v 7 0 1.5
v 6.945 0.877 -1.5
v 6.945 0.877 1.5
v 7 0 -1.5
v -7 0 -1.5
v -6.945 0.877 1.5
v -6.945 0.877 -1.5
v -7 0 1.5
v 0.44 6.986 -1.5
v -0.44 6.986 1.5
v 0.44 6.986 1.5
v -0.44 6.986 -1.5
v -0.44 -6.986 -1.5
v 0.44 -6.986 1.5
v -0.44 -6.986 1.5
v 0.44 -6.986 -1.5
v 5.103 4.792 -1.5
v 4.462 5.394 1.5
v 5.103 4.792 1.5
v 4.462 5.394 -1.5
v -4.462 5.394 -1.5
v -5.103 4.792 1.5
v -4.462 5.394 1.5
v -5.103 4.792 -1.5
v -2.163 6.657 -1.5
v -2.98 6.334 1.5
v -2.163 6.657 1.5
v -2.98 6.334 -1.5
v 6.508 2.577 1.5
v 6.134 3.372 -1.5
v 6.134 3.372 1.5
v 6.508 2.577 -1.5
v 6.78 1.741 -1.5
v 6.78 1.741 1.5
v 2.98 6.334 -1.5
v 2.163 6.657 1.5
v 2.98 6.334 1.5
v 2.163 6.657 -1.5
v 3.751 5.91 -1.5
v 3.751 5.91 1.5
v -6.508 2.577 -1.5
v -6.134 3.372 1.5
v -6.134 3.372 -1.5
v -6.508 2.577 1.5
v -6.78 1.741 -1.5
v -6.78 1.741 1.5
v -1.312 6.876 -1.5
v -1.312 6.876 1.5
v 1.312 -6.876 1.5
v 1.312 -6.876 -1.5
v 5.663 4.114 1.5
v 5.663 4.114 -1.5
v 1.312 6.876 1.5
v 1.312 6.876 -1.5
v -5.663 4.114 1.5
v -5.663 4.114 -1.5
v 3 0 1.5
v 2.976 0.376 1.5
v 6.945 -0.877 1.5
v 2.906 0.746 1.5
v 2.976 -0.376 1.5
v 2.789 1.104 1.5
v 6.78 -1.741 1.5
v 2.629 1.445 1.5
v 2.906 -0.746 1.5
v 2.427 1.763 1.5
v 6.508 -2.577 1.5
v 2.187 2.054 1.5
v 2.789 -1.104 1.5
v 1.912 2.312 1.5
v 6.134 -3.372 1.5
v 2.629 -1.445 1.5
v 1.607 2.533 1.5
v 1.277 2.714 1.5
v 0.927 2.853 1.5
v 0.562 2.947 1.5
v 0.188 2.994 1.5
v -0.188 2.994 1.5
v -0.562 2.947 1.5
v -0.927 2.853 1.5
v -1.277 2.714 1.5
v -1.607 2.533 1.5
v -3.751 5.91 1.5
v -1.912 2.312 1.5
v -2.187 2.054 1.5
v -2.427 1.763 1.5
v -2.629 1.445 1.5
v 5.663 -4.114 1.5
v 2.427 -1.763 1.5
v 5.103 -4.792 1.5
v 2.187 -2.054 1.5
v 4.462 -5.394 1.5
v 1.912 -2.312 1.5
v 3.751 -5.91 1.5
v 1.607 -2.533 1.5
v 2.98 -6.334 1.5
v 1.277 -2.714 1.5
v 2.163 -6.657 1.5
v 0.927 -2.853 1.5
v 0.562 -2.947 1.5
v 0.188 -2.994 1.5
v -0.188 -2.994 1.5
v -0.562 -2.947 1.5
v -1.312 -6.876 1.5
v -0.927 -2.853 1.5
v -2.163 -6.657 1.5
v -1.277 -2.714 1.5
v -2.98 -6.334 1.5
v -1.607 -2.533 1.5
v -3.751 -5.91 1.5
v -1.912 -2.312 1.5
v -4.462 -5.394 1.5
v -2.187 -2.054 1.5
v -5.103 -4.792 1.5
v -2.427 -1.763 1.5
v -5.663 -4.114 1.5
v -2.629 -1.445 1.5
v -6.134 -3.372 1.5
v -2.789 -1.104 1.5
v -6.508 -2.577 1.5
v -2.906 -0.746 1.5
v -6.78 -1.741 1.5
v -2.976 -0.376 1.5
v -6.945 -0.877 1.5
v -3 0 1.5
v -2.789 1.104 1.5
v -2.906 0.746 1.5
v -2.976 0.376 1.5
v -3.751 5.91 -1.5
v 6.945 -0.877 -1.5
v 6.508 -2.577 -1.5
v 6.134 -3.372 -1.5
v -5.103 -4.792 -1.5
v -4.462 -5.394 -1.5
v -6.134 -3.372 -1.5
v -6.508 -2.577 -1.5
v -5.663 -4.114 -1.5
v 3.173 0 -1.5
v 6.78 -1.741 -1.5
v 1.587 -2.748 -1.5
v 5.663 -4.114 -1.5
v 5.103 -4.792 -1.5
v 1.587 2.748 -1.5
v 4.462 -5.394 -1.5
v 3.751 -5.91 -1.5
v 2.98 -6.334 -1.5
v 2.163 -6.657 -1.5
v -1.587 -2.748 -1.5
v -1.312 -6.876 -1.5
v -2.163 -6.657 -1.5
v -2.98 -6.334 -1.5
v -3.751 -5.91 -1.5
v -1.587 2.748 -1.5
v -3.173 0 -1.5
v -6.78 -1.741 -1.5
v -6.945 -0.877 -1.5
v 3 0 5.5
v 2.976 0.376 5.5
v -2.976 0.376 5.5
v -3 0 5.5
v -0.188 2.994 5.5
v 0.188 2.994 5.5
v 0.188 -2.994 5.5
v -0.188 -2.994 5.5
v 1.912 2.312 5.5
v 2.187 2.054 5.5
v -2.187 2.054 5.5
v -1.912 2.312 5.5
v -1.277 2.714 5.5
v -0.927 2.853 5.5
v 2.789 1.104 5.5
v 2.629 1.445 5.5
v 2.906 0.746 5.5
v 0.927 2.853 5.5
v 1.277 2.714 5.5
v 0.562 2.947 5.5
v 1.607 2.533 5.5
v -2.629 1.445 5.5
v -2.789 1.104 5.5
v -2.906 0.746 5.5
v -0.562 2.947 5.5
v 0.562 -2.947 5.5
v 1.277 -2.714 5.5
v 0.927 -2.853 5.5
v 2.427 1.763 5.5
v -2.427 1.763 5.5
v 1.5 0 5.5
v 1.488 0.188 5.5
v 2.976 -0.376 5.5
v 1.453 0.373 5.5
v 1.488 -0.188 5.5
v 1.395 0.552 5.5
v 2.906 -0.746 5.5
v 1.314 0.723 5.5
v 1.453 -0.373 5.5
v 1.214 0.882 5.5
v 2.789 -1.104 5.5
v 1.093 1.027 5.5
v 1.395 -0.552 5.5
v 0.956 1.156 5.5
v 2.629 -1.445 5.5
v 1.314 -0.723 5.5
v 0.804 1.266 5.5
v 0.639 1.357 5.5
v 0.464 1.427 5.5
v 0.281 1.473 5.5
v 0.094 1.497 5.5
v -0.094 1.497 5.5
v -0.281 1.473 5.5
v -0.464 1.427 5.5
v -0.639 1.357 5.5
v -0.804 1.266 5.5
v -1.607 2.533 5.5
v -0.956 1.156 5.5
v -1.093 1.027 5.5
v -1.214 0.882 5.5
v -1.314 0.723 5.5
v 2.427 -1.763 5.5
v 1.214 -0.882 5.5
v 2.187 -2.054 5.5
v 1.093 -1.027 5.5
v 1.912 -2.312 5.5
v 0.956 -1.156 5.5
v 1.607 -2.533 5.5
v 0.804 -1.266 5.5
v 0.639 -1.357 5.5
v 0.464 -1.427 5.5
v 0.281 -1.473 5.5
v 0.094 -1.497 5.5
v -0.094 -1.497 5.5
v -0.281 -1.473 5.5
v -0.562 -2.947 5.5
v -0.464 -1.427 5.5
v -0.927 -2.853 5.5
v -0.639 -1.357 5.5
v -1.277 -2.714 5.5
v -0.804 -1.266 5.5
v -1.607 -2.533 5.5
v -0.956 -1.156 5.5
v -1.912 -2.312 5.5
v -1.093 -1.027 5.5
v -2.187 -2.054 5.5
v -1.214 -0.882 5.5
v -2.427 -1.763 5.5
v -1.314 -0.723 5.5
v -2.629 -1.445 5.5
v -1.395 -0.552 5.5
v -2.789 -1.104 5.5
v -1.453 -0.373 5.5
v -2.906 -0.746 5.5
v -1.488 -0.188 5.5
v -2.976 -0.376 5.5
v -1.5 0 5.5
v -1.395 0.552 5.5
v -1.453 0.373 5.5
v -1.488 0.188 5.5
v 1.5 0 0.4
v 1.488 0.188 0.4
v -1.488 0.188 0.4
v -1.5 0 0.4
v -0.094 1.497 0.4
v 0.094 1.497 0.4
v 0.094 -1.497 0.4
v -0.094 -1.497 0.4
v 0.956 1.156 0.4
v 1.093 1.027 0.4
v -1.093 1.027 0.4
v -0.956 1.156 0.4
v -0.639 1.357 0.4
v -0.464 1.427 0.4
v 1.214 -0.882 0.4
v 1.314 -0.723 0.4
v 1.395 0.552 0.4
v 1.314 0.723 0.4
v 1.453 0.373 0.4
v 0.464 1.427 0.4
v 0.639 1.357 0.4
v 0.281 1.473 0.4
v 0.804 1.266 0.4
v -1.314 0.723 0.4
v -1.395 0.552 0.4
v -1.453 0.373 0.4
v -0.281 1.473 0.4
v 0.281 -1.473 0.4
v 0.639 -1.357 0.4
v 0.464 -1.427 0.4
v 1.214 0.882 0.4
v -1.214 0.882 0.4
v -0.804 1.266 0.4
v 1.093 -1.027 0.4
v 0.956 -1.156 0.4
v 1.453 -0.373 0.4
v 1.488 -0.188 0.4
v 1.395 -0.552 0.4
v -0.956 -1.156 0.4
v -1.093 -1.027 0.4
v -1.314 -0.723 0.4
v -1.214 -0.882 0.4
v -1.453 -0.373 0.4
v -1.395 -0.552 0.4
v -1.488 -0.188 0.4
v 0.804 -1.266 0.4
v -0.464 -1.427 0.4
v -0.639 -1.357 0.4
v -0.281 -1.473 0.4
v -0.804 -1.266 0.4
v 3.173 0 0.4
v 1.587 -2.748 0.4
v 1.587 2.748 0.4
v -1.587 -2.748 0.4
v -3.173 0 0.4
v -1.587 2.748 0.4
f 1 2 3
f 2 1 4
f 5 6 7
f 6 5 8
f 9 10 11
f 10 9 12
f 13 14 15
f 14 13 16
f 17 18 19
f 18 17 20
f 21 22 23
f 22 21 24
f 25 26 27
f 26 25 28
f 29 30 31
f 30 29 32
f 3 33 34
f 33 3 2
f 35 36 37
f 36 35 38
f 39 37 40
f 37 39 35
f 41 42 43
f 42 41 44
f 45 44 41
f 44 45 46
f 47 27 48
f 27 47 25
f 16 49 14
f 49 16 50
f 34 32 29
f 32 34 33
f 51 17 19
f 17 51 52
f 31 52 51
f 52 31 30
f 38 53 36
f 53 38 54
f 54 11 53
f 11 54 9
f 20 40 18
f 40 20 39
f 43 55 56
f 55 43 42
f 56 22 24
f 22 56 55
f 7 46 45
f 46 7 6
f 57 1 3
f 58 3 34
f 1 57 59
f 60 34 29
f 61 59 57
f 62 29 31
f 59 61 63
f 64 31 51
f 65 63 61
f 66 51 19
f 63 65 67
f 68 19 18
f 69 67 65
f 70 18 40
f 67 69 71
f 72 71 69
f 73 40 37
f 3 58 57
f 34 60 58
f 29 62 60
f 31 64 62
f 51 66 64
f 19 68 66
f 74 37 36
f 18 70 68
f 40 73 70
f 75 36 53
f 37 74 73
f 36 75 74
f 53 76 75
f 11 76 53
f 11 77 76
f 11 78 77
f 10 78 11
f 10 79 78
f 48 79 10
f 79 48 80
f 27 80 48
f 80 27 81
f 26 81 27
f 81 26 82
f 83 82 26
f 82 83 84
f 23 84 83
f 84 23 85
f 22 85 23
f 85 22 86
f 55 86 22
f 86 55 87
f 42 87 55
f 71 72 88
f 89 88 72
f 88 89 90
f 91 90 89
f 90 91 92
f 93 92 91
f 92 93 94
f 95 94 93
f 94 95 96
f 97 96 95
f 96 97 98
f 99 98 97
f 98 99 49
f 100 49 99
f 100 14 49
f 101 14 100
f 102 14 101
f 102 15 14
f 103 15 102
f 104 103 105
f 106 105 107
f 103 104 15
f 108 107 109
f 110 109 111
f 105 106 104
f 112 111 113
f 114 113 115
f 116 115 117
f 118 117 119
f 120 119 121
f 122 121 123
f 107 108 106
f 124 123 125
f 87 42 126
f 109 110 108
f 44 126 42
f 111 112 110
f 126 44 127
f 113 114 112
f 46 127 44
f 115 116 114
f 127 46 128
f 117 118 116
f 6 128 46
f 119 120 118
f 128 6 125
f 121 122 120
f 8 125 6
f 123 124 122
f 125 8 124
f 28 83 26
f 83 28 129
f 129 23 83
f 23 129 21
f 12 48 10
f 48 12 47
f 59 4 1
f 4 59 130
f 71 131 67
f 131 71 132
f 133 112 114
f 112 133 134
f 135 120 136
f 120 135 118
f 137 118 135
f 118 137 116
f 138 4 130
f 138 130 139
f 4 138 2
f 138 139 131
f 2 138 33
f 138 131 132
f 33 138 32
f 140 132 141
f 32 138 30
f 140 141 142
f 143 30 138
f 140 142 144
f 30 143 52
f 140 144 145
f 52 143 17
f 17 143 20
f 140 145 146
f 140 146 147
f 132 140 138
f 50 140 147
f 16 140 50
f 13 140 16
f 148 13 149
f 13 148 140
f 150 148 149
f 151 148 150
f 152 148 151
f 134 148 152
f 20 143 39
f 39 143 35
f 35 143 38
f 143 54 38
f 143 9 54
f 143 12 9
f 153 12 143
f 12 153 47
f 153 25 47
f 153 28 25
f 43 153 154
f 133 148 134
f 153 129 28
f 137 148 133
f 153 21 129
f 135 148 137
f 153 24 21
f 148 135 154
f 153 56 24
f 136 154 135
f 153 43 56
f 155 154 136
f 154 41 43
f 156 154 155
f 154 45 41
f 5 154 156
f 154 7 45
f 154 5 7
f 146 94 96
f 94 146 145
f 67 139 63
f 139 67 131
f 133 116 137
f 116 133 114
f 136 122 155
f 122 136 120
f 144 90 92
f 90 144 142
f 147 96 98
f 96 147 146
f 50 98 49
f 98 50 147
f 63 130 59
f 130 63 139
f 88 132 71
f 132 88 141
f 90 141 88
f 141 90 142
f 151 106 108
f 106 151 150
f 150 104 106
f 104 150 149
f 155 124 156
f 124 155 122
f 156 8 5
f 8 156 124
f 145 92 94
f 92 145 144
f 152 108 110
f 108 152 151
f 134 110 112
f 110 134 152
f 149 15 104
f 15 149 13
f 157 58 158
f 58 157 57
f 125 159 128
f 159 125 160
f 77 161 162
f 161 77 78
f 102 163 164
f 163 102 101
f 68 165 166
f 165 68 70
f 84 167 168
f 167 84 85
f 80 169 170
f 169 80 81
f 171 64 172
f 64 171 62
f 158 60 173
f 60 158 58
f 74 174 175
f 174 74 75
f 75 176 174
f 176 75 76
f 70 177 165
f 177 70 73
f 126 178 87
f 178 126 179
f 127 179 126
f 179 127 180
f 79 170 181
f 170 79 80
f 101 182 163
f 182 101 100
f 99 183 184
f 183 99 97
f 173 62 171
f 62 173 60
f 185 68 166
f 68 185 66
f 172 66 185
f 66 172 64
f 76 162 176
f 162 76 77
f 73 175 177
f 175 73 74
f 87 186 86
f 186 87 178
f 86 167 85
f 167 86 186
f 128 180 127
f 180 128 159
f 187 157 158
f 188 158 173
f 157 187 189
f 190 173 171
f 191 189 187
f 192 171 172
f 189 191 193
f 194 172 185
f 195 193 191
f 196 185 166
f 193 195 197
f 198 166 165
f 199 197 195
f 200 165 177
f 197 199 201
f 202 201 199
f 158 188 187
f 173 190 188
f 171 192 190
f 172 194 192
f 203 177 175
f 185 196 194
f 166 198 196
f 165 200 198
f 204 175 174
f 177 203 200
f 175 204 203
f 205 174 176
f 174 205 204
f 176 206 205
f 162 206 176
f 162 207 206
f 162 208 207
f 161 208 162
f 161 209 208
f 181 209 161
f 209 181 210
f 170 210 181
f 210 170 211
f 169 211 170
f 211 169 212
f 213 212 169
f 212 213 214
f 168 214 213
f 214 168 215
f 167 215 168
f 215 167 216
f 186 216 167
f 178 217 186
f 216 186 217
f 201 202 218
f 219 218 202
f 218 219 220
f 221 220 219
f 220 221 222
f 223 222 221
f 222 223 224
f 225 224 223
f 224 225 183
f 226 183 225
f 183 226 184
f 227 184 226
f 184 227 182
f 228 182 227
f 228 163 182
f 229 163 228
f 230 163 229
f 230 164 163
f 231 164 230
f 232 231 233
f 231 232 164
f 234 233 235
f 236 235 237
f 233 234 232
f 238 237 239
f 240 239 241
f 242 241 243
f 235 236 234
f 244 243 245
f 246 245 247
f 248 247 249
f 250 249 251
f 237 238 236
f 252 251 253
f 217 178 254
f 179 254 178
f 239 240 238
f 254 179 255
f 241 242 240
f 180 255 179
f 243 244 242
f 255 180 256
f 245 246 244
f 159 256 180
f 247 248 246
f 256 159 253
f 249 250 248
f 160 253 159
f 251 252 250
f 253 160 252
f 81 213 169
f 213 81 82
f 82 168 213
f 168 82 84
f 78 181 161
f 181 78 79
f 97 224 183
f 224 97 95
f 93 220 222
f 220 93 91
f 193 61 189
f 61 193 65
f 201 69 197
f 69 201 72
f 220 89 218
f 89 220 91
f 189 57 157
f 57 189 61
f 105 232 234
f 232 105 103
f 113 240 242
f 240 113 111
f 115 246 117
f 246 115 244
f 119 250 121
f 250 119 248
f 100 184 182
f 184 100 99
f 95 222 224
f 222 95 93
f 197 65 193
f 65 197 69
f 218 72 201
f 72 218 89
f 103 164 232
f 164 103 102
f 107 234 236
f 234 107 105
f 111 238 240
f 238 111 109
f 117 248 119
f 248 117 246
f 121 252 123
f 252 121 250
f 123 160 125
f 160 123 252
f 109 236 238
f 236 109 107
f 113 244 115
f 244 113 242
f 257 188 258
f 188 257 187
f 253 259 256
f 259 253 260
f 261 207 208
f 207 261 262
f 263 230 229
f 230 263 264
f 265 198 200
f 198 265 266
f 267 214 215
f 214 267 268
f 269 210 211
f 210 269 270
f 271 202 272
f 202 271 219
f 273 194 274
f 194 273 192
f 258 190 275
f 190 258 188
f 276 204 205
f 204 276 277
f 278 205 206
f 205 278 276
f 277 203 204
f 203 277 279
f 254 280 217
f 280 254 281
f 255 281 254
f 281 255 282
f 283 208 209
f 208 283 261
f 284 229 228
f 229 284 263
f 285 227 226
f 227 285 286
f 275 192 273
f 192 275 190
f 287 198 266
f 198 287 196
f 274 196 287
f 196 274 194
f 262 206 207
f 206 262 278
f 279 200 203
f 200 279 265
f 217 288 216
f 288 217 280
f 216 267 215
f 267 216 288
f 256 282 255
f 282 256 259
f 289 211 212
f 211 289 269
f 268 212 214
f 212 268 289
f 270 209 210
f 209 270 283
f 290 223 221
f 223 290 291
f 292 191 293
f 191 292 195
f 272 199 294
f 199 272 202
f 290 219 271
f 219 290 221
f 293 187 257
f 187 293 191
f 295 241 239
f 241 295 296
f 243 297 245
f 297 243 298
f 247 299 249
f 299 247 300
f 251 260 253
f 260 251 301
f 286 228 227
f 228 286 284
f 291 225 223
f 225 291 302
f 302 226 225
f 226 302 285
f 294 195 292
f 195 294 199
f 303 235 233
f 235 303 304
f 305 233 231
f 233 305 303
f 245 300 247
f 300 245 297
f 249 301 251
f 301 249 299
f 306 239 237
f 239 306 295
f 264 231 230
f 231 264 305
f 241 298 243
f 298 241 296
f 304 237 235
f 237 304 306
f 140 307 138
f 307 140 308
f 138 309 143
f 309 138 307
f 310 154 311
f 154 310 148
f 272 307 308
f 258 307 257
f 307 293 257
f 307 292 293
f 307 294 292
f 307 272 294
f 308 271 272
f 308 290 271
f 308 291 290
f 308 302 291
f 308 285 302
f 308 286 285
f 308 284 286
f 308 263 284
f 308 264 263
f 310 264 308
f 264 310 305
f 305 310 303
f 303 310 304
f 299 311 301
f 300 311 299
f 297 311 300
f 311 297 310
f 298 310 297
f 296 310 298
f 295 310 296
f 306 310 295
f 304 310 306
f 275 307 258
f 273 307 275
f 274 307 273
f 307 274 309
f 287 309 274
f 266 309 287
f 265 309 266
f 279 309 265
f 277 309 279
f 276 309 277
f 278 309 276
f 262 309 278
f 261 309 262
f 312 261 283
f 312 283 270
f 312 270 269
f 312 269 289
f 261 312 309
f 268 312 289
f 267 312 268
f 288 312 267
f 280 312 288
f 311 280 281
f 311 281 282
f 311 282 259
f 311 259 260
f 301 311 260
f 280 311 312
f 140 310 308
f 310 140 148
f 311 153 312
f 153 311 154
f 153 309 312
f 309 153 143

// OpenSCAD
$fn = 50;


difference() {
	union() {
		translate(v = [0, 0, -1.5000000000]) {
			rotate(a = [0, 0, 0]) {
				cylinder(h = 3, r = 7.0000000000);
			}
		}
		translate(v = [0, 0, -1.5000000000]) {
			rotate(a = [0, 0, 0]) {
				cylinder(h = 7, r = 3.0000000000);
			}
		}
	}
	union() {
		translate(v = [0, 0, -125.0000000000]) {
			rotate(a = [0, 0, 0]) {
				cylinder(h = 250, r = 1.5000000000);
			}
		}
		translate(v = [0, 0, -2.1000000000]) {
			rotate(a = [0, 0, 0]) {
				#translate(v = [0, 0, 0]) {
					rotate(a = [0, 0, 0]) {
						linear_extrude(height = 2.5000000000) {
							polygon(points = [[3.1735000000, 0.0000000000], [1.5867500000, 2.7483316189], [-1.5867500000, 2.7483316189], [-3.1735000000, 0.0000000000], [-1.5867500000, -2.7483316189], [1.5867500000, -2.7483316189]]);
						}
					}
				}
			}
		}
	}
}
